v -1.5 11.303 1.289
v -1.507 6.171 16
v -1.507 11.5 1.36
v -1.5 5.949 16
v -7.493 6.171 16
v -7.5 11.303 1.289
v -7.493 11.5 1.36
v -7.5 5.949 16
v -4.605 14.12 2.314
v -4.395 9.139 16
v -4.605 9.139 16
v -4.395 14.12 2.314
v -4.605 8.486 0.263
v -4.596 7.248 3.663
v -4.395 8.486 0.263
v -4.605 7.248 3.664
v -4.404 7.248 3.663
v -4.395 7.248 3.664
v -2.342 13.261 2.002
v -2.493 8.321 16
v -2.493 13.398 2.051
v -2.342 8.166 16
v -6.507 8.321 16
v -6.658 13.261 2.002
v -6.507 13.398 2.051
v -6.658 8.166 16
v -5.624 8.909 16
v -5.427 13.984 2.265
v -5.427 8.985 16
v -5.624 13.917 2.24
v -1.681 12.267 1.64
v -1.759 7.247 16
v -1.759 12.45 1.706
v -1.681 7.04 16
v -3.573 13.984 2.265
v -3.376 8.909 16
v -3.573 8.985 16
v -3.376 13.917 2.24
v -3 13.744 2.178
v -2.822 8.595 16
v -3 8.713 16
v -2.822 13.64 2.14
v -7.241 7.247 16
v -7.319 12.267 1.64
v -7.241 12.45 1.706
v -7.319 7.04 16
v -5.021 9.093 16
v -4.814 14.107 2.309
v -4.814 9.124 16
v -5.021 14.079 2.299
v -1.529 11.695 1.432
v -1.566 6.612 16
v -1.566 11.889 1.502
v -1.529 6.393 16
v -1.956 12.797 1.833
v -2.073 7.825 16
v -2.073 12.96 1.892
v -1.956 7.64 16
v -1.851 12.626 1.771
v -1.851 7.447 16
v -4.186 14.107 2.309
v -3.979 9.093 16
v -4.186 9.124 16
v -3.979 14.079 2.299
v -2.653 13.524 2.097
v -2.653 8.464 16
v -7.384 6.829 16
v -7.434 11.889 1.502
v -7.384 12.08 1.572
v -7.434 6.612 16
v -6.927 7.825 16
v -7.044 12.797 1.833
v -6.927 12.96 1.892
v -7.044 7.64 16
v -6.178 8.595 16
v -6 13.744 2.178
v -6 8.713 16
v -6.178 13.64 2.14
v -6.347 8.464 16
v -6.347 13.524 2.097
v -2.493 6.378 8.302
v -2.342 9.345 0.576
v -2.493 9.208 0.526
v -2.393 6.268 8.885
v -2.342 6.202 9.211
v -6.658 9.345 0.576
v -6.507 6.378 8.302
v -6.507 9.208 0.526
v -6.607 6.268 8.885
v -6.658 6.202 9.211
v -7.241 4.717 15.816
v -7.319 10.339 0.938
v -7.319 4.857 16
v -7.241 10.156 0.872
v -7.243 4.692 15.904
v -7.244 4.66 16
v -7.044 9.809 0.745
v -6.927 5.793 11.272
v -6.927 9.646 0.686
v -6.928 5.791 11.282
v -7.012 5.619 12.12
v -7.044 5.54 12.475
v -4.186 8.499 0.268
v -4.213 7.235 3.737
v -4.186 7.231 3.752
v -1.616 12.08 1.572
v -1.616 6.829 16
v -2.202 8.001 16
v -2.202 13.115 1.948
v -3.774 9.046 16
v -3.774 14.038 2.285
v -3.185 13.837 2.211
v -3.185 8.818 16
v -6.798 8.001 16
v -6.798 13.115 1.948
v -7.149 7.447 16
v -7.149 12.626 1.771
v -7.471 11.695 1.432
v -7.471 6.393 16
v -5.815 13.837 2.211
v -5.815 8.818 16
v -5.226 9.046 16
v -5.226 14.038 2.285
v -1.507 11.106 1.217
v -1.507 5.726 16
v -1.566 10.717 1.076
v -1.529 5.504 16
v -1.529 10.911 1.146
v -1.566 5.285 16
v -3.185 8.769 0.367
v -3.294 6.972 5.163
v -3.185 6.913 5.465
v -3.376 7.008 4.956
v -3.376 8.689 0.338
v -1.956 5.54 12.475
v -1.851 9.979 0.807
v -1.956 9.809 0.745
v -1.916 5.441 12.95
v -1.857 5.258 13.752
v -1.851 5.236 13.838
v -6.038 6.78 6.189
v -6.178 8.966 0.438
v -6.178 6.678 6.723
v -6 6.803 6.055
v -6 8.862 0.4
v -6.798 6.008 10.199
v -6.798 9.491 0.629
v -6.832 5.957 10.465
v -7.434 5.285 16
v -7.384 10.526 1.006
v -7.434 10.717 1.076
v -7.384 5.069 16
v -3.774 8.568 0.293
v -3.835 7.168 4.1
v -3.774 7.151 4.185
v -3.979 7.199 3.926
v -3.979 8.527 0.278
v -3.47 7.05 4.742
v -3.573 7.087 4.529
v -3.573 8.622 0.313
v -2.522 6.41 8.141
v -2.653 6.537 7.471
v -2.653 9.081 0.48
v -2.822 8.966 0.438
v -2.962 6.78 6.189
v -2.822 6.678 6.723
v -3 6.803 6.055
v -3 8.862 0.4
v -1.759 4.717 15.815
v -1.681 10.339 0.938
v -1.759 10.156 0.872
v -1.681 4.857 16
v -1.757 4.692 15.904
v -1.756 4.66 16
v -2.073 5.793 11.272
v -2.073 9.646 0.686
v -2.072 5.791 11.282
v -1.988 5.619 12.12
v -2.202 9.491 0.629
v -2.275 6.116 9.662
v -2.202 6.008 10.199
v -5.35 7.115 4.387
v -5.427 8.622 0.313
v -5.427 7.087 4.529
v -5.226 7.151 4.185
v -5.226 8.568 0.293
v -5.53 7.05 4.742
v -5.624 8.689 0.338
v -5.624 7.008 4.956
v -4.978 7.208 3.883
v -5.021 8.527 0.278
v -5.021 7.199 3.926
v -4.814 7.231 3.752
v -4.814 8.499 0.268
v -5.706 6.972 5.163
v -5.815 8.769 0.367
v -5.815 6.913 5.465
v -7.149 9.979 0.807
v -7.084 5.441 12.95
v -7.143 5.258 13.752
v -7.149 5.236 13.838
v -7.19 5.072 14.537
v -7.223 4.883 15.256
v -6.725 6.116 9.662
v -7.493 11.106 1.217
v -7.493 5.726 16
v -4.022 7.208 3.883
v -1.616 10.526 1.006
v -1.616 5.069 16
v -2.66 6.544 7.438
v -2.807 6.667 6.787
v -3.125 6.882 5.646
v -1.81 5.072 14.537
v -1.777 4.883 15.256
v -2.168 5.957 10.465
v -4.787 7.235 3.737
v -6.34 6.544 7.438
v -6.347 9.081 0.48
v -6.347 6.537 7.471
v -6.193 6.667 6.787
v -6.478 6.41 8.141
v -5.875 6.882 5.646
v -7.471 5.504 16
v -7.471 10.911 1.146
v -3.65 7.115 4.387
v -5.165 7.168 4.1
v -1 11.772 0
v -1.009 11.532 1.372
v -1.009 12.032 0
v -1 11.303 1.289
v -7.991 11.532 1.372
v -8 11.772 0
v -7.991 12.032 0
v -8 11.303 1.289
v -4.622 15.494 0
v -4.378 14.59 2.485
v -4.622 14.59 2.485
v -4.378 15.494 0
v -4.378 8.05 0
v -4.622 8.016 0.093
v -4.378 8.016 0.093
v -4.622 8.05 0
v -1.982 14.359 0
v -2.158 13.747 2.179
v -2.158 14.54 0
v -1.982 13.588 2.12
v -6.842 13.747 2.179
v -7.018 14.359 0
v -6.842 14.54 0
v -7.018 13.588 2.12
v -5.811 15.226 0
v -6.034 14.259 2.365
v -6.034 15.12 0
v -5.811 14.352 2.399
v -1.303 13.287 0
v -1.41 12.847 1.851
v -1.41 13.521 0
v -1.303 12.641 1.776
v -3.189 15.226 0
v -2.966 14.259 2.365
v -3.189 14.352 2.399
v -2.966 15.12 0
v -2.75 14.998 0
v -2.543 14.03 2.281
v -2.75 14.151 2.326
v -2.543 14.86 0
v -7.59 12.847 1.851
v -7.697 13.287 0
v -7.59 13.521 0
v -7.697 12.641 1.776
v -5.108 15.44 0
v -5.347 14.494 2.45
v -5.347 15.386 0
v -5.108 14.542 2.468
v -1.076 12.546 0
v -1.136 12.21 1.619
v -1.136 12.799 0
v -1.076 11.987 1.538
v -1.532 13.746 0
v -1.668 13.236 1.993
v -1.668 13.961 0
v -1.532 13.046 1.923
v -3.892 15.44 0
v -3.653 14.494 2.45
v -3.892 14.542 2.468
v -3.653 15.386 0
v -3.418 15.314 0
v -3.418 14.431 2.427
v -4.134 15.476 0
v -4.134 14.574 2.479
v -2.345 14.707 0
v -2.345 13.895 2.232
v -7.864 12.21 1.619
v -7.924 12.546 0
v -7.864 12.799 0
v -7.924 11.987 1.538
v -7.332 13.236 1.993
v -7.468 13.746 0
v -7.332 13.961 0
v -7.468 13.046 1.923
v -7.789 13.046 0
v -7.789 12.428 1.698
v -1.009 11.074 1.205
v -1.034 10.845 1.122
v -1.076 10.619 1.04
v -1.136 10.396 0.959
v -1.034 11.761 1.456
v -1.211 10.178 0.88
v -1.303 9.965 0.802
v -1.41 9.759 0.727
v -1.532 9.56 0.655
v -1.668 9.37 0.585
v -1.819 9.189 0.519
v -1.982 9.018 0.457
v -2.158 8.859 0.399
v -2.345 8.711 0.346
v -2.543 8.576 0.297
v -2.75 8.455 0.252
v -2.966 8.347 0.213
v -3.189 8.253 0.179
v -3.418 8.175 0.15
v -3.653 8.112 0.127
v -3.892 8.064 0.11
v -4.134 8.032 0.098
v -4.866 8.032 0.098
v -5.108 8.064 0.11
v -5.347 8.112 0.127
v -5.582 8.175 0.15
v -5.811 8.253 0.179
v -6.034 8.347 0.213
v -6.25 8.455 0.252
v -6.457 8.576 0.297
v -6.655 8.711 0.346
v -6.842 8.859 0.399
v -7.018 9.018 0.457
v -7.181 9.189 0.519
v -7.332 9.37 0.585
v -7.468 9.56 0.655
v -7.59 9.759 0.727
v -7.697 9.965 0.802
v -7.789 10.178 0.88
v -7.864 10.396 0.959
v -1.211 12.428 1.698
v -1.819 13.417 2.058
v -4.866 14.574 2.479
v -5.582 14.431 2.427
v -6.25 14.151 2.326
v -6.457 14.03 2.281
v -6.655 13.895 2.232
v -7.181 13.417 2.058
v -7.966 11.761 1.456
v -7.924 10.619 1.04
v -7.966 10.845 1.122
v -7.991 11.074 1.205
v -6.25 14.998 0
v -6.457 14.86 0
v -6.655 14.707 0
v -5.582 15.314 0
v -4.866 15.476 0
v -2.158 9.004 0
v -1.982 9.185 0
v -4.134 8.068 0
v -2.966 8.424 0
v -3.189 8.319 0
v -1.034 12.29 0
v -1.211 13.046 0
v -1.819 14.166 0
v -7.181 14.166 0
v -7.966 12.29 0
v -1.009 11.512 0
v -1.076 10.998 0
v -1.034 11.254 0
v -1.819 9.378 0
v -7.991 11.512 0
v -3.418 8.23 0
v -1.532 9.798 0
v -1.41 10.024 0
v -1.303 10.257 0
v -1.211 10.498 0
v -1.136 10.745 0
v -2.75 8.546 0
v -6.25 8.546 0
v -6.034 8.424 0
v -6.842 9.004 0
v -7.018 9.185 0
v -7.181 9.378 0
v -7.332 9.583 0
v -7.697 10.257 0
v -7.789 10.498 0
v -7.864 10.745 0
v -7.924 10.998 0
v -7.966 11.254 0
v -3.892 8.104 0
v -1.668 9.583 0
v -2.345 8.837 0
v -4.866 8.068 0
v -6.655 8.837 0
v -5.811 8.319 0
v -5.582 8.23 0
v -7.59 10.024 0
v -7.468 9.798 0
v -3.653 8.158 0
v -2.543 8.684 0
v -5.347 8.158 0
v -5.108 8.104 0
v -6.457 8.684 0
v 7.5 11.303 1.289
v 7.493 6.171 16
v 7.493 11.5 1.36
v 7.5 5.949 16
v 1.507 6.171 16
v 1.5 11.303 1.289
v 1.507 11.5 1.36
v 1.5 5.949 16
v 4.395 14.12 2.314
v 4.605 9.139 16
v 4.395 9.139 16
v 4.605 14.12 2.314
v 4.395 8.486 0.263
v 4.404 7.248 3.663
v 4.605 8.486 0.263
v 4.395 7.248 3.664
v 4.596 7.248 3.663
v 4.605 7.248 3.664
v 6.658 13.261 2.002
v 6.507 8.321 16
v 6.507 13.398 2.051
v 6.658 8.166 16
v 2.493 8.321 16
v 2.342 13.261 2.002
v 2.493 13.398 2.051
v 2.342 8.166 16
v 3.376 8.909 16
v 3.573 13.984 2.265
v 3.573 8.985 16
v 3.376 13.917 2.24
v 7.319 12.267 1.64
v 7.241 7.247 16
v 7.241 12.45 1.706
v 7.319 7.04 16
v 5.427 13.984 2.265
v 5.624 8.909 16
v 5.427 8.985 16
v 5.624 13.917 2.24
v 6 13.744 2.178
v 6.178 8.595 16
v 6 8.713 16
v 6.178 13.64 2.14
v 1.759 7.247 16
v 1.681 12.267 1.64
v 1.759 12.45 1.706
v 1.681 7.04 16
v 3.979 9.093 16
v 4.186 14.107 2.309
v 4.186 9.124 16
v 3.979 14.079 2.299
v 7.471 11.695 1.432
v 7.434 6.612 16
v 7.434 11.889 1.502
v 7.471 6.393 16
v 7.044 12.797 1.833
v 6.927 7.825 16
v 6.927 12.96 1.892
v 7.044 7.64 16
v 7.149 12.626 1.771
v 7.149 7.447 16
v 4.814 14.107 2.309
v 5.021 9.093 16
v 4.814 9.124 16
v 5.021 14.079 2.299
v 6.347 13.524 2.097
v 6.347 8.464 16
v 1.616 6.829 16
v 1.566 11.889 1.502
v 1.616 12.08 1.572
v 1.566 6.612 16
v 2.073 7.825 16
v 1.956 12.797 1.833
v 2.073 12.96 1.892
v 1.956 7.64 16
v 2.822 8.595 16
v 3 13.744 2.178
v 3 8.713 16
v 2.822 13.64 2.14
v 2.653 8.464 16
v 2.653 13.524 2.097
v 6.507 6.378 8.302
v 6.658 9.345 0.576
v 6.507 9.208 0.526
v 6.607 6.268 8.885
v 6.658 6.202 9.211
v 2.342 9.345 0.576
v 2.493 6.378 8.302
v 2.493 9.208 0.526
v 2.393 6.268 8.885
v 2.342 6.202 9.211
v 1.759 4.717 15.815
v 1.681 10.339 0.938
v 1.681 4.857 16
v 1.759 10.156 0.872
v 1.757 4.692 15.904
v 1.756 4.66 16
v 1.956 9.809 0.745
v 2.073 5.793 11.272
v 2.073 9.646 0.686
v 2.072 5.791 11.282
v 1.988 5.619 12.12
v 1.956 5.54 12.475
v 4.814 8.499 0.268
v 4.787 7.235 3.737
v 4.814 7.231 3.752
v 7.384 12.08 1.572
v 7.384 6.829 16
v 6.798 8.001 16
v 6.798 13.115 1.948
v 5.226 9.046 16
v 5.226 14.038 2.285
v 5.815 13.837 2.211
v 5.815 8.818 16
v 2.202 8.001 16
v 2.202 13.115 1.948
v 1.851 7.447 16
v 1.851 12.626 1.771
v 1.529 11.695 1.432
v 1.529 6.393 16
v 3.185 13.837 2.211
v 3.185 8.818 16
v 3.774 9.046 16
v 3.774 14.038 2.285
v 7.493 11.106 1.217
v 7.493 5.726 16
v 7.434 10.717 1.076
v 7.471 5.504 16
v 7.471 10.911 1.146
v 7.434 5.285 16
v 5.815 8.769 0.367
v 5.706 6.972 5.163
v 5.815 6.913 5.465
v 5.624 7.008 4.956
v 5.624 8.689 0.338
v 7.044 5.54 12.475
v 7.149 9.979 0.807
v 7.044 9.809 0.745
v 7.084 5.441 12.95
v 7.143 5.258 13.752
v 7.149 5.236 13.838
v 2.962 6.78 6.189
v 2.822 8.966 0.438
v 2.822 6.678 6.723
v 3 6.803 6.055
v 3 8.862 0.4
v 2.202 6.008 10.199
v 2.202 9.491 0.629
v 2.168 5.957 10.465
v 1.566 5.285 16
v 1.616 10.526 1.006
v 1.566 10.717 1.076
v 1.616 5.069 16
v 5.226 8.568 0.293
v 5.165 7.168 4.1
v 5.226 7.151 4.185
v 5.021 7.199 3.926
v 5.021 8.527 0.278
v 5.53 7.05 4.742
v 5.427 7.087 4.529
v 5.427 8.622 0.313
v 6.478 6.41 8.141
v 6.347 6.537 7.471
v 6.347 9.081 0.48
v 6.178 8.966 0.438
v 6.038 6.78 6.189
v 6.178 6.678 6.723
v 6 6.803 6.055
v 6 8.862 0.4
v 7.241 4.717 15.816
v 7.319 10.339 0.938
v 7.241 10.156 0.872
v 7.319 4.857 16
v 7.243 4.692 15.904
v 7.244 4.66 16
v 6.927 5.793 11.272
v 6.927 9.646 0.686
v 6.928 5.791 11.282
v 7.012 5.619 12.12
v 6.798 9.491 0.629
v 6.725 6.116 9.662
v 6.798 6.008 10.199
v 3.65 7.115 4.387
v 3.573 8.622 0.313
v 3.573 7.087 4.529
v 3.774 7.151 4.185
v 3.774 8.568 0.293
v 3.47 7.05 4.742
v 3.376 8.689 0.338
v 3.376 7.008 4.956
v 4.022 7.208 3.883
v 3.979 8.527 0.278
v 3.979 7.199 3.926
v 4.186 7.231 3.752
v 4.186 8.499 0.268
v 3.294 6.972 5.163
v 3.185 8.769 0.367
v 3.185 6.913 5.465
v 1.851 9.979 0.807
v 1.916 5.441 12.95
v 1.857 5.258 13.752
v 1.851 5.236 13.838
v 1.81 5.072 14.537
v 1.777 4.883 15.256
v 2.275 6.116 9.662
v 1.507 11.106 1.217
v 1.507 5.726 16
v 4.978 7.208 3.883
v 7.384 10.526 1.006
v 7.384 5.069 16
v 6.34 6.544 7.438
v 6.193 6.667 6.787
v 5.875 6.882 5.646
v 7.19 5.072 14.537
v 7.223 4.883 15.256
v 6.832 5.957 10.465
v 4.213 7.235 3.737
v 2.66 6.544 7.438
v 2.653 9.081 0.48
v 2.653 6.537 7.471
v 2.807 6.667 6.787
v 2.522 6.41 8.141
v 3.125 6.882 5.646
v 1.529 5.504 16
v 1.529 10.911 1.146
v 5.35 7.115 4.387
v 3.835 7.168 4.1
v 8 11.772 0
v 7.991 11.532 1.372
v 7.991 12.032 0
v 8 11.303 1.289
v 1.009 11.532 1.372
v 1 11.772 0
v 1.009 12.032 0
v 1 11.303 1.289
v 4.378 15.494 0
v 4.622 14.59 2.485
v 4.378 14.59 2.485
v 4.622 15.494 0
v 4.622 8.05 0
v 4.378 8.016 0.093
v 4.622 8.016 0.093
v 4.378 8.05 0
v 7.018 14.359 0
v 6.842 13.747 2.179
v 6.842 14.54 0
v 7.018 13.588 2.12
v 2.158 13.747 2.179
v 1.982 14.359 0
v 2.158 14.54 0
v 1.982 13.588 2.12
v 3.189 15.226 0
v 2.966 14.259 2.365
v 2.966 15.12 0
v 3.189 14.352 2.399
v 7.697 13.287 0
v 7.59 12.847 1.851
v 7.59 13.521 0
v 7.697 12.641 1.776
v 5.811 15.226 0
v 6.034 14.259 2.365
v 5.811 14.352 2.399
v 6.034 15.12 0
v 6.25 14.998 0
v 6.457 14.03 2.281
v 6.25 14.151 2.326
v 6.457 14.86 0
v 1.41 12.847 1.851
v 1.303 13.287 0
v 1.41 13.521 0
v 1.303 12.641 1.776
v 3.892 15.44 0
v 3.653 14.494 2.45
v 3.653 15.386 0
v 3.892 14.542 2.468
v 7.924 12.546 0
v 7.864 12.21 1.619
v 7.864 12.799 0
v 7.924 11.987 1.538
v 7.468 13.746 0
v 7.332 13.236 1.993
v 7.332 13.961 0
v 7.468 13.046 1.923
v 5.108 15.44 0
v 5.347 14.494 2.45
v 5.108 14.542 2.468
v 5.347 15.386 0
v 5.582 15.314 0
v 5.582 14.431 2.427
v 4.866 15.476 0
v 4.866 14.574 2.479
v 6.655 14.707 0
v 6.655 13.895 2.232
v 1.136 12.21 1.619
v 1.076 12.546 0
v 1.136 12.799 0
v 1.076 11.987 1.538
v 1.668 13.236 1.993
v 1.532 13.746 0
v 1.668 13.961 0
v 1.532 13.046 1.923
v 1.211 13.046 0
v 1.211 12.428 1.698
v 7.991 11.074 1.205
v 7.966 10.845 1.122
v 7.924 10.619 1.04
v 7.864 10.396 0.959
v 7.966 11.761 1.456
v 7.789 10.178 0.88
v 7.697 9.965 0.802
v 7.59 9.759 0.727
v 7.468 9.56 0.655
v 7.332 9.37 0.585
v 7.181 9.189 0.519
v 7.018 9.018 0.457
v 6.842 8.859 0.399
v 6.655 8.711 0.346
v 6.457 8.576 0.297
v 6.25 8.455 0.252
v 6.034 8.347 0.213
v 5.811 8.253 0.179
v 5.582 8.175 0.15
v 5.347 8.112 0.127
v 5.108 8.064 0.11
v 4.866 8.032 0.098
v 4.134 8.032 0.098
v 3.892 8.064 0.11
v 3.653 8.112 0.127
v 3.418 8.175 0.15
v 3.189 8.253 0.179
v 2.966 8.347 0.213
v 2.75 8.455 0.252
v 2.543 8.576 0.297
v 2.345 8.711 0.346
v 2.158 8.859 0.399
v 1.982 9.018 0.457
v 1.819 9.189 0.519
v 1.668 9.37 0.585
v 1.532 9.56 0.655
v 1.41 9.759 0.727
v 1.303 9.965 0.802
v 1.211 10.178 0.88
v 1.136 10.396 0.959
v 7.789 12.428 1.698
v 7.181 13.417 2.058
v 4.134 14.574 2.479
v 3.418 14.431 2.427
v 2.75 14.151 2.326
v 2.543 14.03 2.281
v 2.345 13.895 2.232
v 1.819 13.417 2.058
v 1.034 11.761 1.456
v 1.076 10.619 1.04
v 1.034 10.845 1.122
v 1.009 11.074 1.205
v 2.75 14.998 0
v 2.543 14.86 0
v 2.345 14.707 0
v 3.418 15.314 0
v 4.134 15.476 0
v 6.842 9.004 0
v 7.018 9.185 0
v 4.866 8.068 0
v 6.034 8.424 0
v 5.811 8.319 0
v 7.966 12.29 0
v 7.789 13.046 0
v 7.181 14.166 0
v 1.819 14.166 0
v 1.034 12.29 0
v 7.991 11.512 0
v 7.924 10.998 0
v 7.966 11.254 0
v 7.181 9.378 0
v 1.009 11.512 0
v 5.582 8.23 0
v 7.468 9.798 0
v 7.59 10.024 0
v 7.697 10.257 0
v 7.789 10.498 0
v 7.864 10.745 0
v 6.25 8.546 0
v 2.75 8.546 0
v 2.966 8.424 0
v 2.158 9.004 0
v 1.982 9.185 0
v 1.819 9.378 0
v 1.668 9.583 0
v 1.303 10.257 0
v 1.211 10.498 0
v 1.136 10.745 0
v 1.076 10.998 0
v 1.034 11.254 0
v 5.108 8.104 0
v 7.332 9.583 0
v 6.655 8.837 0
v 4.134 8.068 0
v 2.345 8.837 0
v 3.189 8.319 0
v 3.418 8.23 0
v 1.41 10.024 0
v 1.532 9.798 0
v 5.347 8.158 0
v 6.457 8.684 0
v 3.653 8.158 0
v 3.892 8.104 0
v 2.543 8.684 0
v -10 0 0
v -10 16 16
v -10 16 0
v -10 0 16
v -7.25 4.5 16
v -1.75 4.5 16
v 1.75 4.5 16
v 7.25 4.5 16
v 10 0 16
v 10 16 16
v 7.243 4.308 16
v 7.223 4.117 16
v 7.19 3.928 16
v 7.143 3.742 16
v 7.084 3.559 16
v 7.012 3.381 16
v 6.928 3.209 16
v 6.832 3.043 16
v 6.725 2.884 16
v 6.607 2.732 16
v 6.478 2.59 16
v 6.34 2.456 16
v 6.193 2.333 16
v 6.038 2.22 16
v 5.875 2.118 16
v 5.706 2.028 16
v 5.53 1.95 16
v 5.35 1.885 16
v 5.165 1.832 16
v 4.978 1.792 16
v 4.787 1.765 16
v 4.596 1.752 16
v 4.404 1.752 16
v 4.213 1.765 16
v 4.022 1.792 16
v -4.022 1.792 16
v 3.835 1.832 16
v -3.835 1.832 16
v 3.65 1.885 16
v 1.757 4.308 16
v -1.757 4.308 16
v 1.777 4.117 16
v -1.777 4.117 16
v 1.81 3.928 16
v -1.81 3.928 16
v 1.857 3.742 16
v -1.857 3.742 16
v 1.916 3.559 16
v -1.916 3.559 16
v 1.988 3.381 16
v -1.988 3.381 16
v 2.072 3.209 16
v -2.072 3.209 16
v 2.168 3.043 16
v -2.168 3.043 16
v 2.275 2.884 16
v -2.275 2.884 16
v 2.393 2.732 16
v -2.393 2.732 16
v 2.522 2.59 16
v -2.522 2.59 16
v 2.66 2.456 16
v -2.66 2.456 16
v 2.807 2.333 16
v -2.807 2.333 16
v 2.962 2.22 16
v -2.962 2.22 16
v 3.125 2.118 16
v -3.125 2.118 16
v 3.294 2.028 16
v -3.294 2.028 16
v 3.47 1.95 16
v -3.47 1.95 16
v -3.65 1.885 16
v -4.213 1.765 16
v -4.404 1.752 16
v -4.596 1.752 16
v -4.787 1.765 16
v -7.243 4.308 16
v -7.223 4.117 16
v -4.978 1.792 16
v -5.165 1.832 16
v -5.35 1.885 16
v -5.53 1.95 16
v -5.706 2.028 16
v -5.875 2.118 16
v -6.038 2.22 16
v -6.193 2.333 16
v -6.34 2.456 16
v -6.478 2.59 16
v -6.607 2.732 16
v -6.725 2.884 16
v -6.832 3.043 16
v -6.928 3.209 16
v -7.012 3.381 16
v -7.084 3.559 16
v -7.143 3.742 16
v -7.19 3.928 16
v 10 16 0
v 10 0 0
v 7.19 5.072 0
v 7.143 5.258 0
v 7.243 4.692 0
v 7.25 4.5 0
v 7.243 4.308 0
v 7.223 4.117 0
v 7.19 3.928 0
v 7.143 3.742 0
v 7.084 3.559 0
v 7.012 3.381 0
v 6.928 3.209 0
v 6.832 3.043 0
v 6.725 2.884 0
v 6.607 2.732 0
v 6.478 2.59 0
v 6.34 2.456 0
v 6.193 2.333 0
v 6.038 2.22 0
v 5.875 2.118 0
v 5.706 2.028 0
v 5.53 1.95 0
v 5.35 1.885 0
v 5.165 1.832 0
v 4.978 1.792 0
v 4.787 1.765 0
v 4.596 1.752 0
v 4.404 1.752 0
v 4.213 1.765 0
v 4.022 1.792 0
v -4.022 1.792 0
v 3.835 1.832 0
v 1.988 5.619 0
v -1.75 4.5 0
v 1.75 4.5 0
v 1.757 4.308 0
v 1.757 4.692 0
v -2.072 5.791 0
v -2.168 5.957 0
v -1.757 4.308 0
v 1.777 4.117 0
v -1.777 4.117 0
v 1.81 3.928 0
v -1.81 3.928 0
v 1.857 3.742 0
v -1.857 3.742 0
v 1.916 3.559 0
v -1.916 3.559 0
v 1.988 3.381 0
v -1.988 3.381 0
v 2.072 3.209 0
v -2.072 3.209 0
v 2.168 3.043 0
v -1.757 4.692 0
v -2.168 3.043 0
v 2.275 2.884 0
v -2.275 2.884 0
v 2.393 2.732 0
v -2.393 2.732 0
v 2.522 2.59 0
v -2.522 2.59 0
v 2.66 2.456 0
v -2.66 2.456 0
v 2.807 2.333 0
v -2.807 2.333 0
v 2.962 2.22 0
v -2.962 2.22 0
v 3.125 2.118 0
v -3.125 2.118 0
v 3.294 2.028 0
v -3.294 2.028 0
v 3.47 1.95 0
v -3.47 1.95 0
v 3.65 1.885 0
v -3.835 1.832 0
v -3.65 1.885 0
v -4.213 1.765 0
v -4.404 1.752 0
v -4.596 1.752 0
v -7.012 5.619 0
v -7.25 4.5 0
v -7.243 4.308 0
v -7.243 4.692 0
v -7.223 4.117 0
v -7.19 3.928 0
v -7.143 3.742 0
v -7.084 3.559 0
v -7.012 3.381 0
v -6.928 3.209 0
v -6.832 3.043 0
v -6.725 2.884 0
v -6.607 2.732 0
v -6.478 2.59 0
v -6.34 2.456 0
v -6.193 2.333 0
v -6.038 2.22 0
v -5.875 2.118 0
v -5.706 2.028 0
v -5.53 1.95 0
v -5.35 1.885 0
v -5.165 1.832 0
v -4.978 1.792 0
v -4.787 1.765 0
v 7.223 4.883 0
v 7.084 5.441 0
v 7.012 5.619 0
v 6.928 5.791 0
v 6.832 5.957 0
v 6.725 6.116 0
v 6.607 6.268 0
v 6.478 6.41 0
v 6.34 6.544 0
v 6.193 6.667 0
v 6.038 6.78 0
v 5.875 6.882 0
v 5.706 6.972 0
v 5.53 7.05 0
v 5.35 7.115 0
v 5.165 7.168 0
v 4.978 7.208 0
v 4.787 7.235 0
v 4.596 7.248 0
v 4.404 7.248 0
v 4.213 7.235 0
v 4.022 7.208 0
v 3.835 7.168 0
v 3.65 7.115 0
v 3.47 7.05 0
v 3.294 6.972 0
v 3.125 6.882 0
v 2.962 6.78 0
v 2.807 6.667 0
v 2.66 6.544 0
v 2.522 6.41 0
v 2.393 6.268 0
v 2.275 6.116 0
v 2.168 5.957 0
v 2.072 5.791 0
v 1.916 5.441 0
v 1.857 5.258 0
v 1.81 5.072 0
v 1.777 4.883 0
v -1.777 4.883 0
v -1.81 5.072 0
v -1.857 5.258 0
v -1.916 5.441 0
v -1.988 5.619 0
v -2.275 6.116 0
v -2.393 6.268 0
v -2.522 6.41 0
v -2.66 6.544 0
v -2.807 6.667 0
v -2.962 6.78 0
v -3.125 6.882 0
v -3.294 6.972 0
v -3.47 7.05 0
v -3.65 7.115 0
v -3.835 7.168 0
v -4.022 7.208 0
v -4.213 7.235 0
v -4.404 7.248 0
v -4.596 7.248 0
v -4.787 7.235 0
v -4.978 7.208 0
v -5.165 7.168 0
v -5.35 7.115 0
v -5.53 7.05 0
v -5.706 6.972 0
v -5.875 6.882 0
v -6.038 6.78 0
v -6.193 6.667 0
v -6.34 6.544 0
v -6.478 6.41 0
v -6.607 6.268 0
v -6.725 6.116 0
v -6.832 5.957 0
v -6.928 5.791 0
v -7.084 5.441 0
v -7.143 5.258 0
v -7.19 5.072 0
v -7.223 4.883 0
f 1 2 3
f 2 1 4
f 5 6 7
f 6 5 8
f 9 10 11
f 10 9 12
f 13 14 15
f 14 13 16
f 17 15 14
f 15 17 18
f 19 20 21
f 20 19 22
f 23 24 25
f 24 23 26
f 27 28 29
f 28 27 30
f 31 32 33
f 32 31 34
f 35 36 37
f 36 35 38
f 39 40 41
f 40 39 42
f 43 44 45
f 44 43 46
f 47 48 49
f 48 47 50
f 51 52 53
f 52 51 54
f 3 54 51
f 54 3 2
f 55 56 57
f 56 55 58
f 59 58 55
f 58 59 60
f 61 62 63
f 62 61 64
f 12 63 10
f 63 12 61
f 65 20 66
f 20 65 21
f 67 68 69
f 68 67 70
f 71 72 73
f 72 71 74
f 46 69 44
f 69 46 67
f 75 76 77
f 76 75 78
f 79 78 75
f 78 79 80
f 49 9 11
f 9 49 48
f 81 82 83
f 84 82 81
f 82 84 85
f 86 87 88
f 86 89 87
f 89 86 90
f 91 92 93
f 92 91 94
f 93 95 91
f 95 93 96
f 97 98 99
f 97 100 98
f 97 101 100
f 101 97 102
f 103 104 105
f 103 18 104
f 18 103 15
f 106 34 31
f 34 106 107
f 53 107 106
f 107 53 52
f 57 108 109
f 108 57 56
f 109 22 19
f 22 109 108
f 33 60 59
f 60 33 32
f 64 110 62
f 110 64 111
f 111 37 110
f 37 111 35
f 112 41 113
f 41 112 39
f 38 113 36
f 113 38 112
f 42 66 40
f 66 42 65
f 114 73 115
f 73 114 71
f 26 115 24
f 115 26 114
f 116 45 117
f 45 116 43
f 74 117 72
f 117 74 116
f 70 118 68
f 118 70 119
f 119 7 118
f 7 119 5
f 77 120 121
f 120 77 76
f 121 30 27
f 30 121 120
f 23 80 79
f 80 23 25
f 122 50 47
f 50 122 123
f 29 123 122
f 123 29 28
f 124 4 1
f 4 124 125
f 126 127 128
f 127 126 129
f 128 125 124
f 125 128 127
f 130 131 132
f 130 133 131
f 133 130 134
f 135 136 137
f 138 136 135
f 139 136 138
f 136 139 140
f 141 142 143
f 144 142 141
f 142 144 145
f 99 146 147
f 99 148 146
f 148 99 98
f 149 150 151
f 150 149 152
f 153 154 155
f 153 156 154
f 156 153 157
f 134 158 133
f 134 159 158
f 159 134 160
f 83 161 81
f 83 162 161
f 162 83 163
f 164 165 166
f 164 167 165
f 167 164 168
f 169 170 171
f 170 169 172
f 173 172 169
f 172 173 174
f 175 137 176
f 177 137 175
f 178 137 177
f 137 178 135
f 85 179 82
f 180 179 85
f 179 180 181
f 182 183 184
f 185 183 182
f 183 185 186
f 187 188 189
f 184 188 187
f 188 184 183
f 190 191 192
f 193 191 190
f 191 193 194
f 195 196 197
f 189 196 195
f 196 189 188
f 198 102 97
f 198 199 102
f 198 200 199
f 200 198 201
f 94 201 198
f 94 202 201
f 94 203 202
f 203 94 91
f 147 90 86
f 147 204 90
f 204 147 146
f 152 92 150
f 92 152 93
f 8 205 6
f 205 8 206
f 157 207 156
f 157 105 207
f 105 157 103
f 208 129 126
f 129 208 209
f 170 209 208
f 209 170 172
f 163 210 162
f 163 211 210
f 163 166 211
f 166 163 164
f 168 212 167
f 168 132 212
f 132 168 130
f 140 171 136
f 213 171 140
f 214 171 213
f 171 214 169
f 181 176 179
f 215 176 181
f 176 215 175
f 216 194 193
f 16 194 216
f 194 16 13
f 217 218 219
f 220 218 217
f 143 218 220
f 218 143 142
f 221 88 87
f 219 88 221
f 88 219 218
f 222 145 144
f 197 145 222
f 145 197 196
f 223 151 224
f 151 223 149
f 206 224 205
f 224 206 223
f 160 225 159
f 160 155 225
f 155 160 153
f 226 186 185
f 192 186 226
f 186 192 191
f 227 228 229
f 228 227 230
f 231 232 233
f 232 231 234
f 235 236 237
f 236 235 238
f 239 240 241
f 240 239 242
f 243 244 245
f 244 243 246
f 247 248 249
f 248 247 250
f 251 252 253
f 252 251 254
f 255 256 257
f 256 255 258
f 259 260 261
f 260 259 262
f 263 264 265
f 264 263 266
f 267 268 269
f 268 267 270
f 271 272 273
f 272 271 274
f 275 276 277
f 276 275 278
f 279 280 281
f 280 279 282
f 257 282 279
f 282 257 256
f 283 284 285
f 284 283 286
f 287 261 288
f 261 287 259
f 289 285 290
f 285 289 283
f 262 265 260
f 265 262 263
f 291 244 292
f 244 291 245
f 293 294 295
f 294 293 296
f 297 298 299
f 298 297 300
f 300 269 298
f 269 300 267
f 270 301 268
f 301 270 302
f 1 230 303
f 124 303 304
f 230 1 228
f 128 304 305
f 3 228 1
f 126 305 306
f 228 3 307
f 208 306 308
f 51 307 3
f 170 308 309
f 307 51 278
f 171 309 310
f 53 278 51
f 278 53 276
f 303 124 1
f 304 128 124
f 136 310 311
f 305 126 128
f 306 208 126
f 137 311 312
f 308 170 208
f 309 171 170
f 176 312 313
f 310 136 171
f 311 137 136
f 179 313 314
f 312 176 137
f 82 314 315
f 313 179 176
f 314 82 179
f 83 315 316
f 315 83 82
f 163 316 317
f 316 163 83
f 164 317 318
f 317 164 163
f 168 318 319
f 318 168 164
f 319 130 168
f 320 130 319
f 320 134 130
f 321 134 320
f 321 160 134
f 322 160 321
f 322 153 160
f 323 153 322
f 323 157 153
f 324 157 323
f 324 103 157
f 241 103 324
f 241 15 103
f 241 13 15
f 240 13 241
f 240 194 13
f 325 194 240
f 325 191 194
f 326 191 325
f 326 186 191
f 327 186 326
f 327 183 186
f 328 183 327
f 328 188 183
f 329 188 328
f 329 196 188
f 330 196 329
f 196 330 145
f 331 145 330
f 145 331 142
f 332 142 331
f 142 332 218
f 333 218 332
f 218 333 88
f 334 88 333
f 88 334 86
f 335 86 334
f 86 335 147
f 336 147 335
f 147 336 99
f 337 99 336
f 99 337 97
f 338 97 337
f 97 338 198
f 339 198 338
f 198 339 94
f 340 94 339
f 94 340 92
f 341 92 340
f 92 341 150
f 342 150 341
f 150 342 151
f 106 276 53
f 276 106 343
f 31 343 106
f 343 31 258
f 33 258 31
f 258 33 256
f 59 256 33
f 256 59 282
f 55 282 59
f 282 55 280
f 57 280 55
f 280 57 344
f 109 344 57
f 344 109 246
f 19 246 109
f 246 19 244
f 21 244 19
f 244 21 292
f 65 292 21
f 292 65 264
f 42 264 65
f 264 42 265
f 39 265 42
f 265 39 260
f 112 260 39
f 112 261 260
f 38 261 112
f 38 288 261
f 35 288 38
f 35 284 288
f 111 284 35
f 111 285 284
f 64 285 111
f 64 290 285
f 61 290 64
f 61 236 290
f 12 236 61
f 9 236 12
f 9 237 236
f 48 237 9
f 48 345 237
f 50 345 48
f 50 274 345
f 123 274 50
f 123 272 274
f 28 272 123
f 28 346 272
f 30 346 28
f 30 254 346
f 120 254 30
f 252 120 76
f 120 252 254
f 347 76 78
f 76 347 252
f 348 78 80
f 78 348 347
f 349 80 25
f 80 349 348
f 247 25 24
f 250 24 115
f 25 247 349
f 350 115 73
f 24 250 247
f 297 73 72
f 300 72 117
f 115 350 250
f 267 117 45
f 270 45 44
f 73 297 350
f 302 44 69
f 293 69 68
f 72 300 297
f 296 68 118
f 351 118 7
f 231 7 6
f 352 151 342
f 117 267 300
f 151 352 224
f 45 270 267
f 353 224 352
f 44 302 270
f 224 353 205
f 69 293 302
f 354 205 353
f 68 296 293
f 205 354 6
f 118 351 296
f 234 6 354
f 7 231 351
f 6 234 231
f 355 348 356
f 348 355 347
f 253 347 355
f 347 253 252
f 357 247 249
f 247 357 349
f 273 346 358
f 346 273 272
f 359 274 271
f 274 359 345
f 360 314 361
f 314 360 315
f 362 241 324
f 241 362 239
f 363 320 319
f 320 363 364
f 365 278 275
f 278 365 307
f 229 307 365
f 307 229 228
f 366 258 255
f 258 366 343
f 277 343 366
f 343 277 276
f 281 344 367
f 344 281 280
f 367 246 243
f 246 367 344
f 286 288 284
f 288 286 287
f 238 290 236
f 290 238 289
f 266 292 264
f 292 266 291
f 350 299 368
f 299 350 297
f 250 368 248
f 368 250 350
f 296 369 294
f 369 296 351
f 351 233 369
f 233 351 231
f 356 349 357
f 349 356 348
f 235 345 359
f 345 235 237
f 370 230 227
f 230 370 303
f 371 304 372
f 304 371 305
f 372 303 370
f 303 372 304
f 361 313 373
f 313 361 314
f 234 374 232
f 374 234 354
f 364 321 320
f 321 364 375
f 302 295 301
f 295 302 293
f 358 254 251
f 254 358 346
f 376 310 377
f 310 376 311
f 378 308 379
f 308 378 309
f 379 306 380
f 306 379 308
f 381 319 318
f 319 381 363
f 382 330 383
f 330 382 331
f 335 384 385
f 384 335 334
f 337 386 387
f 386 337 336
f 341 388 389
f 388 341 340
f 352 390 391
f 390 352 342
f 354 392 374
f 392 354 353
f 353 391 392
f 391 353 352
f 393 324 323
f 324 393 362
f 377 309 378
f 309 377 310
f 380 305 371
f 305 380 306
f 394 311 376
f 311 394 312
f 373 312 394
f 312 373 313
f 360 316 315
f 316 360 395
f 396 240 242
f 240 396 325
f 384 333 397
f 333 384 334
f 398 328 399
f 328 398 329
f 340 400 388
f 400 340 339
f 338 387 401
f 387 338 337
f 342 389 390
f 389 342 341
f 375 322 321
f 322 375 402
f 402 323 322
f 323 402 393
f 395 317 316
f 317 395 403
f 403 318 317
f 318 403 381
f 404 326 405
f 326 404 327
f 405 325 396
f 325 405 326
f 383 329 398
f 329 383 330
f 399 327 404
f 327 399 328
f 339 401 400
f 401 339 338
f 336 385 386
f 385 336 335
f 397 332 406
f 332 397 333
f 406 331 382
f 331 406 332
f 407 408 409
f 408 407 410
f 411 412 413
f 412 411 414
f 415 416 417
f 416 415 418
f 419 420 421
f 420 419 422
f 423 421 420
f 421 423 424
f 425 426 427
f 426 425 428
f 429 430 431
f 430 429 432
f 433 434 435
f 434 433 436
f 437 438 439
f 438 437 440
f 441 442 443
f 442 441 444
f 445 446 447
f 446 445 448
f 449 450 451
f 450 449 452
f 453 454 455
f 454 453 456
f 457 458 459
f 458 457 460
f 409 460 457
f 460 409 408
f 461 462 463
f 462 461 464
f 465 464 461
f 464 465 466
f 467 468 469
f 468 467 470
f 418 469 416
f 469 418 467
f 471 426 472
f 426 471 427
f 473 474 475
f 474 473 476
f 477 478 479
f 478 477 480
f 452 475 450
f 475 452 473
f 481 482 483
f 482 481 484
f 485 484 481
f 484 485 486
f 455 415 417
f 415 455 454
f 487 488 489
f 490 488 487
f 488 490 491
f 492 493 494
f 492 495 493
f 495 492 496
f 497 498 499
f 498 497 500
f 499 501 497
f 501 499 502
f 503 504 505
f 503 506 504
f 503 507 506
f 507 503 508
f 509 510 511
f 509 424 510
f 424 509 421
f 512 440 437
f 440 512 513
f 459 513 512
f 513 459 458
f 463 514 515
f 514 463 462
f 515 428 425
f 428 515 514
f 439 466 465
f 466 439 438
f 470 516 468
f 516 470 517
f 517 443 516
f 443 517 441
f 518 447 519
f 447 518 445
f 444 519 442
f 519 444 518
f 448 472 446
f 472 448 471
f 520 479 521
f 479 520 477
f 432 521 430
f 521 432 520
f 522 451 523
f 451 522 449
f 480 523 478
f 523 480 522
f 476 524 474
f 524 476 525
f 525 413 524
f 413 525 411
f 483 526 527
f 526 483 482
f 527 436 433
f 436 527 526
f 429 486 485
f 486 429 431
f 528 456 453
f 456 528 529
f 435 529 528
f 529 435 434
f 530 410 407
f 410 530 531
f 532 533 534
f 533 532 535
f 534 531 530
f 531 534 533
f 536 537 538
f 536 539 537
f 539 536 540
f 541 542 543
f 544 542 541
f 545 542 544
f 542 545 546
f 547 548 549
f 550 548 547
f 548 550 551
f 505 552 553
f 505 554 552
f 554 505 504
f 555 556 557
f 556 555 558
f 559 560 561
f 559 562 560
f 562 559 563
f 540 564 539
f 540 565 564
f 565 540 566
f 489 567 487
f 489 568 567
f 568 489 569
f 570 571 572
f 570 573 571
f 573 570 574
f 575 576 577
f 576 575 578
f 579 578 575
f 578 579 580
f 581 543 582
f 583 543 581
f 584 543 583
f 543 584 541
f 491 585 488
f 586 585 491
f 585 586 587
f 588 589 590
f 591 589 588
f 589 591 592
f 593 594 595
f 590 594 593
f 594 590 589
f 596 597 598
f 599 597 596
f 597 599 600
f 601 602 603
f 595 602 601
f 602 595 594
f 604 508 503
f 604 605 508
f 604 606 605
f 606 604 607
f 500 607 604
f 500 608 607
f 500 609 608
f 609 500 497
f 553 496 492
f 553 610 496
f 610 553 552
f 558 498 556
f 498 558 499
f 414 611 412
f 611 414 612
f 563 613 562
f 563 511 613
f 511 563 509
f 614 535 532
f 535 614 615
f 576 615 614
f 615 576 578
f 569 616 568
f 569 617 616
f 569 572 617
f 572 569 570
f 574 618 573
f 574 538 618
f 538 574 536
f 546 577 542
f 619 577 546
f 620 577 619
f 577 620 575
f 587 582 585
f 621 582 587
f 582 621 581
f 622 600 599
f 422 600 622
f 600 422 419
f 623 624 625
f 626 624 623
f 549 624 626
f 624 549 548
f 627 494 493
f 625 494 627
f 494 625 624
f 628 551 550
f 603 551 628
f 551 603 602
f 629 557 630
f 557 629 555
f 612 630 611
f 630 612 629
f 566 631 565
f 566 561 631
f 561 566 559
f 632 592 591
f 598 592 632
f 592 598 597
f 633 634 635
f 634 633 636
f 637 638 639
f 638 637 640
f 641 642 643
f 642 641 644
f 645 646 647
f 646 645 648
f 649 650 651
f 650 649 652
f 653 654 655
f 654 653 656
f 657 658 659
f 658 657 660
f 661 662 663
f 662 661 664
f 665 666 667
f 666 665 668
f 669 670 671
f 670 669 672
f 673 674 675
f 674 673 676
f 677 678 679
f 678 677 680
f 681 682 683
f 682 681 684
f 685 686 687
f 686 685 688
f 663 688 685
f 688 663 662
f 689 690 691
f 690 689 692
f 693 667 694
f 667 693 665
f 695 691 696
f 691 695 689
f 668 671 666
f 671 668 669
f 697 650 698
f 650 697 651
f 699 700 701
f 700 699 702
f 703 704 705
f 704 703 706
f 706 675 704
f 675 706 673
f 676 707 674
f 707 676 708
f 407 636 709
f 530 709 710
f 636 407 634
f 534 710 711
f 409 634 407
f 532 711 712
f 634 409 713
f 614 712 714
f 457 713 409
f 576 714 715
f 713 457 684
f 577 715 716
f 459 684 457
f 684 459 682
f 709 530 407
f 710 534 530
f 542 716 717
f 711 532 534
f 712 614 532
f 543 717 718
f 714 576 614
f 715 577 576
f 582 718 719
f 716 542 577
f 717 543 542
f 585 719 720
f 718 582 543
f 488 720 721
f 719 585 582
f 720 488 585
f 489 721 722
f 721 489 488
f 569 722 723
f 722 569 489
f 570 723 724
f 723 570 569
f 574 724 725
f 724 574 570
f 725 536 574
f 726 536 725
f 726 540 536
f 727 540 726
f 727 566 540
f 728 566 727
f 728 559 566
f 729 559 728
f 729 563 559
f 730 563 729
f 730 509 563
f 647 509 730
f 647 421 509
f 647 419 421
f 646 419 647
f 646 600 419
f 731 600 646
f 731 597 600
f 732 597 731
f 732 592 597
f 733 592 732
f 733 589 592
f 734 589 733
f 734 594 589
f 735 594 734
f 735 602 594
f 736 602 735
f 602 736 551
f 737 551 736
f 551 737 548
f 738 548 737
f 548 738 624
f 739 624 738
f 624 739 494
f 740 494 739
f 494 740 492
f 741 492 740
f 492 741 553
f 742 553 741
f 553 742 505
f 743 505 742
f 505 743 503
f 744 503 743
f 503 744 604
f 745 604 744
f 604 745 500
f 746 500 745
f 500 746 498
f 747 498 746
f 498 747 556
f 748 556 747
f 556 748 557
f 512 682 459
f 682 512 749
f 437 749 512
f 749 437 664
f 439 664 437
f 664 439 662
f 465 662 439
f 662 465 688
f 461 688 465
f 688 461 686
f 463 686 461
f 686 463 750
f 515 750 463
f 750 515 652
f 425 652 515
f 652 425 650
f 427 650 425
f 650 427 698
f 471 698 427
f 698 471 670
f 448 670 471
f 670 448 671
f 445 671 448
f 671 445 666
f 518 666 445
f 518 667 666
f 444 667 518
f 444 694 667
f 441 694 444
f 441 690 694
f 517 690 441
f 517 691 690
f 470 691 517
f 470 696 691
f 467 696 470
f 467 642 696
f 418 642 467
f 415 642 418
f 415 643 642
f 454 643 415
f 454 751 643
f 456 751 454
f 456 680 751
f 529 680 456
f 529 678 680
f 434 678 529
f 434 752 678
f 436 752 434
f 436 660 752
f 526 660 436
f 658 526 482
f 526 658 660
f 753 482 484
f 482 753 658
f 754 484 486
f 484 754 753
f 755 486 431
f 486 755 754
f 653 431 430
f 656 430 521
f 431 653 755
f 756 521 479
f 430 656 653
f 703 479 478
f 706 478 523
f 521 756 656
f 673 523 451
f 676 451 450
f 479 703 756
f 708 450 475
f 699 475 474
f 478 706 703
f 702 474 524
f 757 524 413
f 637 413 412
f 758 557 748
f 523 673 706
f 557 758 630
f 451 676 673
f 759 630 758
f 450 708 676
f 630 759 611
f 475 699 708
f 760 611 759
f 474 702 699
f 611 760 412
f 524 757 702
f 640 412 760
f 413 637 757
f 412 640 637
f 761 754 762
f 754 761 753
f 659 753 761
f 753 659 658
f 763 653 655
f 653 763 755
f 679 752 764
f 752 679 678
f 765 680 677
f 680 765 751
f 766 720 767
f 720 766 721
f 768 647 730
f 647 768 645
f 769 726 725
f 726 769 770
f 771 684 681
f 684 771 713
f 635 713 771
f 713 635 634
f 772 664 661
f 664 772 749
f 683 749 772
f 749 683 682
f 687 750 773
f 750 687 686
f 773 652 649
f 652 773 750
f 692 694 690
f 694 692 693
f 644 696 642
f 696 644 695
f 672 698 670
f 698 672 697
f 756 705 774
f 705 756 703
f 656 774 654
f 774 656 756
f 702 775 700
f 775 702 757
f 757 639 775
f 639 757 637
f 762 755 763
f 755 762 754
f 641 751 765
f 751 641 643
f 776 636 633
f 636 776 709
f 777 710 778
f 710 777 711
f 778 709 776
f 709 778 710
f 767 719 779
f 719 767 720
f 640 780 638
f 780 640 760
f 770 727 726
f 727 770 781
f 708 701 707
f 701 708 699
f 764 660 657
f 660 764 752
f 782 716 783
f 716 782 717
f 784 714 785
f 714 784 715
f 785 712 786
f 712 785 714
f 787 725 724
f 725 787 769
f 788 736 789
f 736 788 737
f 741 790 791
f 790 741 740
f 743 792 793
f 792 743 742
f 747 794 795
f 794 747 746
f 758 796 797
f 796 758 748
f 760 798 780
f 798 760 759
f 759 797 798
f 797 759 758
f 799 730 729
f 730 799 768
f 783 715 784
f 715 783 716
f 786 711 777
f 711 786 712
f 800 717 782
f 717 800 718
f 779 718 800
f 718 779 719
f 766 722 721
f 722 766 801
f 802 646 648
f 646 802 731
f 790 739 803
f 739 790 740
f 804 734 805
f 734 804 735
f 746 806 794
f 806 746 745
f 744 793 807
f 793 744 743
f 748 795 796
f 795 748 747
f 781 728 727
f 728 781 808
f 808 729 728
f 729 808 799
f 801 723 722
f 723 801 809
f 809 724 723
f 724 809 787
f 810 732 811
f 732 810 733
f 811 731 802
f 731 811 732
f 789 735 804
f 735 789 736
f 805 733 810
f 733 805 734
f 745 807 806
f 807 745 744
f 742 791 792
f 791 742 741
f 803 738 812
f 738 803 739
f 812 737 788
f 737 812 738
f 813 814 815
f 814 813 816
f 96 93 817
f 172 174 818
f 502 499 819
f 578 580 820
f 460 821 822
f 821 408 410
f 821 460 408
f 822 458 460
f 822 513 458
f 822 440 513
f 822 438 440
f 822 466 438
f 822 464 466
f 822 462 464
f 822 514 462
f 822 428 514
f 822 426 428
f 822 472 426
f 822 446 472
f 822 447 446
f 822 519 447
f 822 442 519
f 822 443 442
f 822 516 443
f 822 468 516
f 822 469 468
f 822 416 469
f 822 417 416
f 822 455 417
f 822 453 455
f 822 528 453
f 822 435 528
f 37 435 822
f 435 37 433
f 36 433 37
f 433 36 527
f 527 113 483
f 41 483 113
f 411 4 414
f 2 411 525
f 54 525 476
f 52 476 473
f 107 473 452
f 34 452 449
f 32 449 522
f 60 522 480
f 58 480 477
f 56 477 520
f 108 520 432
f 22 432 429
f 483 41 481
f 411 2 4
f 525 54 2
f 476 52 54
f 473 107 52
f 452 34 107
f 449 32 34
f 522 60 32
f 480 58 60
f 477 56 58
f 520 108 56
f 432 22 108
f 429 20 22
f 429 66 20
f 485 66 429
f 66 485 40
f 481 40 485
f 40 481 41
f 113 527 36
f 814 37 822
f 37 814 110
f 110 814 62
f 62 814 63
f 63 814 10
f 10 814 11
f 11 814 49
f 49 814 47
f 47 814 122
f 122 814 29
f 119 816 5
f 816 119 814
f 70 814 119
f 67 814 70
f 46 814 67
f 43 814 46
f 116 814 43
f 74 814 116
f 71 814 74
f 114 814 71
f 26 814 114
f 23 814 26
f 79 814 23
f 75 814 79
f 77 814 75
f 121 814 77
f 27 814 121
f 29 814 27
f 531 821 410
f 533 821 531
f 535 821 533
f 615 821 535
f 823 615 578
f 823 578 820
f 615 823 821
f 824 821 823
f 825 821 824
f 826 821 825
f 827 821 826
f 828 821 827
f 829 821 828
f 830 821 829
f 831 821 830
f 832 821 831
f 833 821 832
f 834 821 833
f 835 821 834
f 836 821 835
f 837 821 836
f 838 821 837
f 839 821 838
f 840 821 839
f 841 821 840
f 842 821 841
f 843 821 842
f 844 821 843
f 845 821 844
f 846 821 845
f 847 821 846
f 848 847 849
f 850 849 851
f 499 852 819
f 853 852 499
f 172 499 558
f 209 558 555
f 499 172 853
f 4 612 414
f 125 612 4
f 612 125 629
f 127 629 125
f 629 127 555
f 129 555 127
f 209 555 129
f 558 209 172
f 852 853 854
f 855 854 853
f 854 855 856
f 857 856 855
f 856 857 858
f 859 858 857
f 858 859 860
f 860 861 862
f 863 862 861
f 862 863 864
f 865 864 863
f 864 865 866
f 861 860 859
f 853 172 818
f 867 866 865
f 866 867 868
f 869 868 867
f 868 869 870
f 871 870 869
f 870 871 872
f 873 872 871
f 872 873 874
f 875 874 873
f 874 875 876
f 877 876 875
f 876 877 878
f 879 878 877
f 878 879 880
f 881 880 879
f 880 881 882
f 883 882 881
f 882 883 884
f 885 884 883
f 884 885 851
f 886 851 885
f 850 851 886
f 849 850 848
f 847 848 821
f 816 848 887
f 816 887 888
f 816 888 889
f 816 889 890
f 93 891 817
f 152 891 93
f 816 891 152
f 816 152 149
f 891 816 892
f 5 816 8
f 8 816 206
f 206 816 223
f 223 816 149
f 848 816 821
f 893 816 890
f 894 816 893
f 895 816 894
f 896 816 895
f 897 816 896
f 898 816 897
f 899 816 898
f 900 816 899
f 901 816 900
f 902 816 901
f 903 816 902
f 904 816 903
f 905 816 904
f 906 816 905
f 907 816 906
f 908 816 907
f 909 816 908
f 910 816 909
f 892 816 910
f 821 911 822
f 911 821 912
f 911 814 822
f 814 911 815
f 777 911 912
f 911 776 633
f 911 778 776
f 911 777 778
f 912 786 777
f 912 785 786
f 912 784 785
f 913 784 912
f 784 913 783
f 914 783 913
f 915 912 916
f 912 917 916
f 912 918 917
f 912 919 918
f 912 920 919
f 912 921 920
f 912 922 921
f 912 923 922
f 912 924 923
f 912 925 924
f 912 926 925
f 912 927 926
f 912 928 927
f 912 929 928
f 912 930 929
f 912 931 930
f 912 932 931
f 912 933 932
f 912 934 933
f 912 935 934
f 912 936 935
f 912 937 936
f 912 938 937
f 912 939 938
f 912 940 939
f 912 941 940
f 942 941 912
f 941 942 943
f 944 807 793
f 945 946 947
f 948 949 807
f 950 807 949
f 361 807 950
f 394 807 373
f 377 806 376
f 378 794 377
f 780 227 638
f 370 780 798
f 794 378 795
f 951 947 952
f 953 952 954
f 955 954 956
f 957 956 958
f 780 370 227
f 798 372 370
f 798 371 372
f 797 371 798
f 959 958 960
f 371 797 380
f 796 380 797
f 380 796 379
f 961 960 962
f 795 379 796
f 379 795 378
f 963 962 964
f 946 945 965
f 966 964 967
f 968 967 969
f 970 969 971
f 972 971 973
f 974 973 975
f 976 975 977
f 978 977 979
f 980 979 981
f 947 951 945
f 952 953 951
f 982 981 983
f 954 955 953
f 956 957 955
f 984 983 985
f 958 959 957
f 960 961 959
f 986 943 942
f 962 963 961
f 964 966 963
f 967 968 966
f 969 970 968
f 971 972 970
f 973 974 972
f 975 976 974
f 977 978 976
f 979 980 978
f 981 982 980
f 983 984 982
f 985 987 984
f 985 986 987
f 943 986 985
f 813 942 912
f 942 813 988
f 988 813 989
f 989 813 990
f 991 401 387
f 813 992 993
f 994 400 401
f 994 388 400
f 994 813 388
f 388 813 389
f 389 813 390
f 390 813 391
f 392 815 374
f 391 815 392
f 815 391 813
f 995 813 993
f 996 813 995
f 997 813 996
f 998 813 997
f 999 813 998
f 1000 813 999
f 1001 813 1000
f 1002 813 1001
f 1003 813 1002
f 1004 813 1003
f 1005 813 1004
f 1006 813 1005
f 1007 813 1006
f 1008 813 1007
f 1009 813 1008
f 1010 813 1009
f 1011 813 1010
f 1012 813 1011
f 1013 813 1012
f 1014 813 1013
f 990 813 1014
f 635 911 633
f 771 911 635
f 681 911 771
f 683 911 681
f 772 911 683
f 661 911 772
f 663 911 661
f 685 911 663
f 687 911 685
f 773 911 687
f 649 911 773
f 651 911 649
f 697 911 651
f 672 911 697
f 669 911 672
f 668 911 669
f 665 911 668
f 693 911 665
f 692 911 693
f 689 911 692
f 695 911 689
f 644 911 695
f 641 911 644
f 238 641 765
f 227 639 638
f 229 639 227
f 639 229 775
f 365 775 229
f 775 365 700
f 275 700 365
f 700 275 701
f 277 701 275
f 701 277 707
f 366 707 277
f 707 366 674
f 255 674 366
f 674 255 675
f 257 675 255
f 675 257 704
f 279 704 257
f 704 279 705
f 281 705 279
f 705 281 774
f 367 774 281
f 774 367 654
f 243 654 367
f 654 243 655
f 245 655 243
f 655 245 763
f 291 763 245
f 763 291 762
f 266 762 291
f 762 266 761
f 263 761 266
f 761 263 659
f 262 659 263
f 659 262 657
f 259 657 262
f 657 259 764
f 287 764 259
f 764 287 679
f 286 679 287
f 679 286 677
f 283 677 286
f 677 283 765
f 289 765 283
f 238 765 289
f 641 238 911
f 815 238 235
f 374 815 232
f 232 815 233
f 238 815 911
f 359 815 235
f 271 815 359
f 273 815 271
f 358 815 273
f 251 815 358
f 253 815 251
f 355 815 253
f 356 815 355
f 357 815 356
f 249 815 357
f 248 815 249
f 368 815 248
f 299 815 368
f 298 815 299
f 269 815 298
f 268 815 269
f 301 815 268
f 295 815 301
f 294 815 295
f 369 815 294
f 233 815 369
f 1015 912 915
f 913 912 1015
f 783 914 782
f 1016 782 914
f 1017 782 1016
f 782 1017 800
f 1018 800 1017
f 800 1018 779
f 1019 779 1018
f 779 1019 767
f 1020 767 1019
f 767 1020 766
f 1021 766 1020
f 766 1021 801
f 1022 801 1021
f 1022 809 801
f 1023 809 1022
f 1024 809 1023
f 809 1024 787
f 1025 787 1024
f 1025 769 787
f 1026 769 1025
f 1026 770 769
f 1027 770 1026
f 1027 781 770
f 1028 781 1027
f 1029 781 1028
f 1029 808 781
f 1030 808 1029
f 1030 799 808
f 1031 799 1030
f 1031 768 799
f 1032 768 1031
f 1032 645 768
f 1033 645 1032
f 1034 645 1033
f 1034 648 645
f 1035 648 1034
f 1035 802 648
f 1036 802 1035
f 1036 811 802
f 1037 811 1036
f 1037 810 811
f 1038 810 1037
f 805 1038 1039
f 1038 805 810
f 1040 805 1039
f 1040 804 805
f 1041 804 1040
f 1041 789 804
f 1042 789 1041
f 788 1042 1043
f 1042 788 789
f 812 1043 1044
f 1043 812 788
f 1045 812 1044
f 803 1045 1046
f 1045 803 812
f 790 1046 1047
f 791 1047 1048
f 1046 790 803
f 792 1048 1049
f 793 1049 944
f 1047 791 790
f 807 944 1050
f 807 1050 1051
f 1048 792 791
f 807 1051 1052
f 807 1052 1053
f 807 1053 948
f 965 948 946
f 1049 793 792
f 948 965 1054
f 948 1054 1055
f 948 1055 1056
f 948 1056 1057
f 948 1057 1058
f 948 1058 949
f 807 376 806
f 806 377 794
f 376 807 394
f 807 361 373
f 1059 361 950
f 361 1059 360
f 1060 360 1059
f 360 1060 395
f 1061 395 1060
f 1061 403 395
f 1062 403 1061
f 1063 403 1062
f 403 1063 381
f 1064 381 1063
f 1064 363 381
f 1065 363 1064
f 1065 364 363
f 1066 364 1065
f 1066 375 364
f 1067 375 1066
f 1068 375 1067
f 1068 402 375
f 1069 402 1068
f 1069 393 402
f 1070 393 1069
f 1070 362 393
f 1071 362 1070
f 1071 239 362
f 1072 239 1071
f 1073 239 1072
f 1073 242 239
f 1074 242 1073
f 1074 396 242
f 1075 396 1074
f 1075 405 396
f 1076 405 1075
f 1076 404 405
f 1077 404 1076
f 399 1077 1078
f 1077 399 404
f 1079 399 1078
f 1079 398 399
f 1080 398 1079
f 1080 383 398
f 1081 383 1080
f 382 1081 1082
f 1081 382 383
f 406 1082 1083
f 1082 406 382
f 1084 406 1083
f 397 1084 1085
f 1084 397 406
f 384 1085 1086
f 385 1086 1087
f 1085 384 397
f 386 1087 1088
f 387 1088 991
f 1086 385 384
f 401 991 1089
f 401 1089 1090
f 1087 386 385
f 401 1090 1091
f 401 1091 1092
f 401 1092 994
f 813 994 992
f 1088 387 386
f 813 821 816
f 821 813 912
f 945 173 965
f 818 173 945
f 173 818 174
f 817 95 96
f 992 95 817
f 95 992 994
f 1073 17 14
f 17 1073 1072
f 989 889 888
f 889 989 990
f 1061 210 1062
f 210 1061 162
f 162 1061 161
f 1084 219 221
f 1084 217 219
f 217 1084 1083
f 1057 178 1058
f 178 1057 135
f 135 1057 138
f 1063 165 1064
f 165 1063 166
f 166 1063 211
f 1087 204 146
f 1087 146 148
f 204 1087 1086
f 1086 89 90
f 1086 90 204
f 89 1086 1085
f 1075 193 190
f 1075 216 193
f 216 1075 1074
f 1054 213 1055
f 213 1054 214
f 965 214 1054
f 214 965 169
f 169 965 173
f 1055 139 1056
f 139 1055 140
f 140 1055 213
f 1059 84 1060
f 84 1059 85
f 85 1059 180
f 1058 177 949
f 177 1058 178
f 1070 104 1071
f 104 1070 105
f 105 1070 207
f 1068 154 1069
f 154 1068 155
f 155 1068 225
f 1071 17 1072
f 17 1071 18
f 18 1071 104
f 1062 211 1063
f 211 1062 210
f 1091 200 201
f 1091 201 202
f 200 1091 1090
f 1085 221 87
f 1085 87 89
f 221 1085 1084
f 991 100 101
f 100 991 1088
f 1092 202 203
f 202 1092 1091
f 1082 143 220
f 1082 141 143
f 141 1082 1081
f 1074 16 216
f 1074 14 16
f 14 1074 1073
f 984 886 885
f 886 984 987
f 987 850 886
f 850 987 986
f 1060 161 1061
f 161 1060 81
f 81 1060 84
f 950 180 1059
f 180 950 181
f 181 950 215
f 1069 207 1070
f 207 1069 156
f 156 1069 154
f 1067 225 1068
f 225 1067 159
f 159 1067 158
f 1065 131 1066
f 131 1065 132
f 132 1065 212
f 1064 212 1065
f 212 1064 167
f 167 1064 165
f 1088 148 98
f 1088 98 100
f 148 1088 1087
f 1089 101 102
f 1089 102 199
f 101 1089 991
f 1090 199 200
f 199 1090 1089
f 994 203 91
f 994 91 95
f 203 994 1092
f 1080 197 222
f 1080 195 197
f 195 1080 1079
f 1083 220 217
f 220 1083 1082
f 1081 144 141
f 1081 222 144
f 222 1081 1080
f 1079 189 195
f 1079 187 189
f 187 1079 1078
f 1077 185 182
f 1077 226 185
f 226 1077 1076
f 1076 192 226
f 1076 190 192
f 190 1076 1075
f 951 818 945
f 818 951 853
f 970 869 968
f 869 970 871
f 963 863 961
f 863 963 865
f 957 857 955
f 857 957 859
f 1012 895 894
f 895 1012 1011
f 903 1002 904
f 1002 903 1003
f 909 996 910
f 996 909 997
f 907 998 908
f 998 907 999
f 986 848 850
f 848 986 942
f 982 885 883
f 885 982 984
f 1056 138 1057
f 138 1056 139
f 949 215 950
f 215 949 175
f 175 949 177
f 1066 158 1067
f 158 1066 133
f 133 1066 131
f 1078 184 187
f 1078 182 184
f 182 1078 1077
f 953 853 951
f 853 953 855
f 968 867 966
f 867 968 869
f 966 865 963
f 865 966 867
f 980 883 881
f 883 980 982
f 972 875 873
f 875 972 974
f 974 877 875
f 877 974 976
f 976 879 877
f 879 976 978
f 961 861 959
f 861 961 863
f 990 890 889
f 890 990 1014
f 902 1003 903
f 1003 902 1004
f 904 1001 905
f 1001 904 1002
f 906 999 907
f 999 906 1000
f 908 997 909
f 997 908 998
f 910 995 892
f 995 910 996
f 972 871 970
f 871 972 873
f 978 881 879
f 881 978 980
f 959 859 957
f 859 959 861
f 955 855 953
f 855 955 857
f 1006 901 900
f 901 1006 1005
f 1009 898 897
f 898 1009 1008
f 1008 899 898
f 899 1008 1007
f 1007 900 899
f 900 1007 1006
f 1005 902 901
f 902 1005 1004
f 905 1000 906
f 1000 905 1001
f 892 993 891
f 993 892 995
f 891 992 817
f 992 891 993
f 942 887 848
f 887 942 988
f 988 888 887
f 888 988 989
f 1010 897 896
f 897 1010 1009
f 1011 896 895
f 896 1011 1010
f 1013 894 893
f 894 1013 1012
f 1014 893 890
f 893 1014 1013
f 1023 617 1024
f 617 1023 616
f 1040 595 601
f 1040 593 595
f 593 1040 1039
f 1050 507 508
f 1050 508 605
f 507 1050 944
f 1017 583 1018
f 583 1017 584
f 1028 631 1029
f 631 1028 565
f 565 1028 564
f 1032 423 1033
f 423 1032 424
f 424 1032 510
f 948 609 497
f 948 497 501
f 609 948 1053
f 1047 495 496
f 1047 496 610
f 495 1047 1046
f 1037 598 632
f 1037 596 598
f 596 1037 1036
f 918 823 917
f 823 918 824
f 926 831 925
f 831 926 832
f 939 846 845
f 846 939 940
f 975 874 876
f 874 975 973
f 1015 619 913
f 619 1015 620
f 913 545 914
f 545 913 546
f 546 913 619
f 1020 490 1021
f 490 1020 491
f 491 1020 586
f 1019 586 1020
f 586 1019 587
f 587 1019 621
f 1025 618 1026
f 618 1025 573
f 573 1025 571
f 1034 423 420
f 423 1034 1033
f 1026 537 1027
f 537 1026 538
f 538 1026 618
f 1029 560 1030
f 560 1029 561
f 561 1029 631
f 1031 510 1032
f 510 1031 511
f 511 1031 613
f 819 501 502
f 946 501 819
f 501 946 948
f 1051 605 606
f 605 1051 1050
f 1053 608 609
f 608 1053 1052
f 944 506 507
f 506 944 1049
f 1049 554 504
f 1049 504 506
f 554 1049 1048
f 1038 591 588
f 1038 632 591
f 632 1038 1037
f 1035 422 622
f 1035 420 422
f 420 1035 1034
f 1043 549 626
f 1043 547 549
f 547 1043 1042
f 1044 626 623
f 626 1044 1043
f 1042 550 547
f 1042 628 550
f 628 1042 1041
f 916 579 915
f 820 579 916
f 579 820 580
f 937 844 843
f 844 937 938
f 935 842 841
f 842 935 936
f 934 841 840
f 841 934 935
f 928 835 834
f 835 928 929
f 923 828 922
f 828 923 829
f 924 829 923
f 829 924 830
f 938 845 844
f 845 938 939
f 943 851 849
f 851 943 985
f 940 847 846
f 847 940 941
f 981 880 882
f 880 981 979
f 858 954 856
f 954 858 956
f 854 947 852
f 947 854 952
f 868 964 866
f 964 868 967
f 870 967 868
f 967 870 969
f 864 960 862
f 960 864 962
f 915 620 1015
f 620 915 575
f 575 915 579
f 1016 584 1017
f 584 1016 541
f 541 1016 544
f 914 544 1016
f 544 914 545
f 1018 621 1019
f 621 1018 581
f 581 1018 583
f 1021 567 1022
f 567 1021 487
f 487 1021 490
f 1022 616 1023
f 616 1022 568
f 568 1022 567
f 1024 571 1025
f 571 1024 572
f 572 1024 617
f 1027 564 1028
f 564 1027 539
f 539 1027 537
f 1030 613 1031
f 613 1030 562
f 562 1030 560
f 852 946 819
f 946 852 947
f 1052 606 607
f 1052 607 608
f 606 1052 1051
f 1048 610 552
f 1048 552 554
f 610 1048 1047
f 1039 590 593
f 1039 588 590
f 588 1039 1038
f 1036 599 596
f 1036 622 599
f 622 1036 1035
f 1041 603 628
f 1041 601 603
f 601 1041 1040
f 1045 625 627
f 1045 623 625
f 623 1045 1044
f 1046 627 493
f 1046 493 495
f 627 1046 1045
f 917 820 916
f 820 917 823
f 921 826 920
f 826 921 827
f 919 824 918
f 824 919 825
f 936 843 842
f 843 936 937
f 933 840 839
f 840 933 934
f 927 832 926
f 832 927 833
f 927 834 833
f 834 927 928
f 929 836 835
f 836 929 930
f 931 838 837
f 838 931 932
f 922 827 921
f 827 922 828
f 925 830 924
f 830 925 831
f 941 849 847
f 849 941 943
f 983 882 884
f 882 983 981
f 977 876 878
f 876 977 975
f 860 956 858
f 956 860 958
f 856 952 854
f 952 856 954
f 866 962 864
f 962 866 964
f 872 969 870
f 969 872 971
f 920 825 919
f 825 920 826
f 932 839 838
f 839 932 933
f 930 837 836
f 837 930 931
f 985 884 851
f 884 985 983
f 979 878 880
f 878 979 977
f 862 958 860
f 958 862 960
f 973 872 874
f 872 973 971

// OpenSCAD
$fn = 90;

module lineSensor() {
    function size(v) = sqrt(v.x*v.x + v.y*v.y + v.z*v.z);

    fs1 = [-4.5, 4.5, -1];
    fs2 = [4.5, 4.5, -1];

    led1 = [-4.5, 12.5, -2];
    led2 = [4.5, 12.5, -2];

    ch = 16;

    difference() {
        translate([-10, 0, 0]) cube([20, 16, ch]);
        
        translate(fs1) cylinder(h = 18, d = 5.5);
        translate(fs2) cylinder(h = 18, d = 5.5);
        
        translate(led1) rotate([20, 0, 0]) {
            cylinder(h = ch + 10, d = 6.0);
            cylinder(h = 3.5, d = 7.0);
            }
        translate(led2) rotate([20, 0, 0]) {
            cylinder(h = ch + 10, d = 6.0);
            cylinder(h = 3.5, d = 7.0);
            }
        
        }
    }

lineSensor();
